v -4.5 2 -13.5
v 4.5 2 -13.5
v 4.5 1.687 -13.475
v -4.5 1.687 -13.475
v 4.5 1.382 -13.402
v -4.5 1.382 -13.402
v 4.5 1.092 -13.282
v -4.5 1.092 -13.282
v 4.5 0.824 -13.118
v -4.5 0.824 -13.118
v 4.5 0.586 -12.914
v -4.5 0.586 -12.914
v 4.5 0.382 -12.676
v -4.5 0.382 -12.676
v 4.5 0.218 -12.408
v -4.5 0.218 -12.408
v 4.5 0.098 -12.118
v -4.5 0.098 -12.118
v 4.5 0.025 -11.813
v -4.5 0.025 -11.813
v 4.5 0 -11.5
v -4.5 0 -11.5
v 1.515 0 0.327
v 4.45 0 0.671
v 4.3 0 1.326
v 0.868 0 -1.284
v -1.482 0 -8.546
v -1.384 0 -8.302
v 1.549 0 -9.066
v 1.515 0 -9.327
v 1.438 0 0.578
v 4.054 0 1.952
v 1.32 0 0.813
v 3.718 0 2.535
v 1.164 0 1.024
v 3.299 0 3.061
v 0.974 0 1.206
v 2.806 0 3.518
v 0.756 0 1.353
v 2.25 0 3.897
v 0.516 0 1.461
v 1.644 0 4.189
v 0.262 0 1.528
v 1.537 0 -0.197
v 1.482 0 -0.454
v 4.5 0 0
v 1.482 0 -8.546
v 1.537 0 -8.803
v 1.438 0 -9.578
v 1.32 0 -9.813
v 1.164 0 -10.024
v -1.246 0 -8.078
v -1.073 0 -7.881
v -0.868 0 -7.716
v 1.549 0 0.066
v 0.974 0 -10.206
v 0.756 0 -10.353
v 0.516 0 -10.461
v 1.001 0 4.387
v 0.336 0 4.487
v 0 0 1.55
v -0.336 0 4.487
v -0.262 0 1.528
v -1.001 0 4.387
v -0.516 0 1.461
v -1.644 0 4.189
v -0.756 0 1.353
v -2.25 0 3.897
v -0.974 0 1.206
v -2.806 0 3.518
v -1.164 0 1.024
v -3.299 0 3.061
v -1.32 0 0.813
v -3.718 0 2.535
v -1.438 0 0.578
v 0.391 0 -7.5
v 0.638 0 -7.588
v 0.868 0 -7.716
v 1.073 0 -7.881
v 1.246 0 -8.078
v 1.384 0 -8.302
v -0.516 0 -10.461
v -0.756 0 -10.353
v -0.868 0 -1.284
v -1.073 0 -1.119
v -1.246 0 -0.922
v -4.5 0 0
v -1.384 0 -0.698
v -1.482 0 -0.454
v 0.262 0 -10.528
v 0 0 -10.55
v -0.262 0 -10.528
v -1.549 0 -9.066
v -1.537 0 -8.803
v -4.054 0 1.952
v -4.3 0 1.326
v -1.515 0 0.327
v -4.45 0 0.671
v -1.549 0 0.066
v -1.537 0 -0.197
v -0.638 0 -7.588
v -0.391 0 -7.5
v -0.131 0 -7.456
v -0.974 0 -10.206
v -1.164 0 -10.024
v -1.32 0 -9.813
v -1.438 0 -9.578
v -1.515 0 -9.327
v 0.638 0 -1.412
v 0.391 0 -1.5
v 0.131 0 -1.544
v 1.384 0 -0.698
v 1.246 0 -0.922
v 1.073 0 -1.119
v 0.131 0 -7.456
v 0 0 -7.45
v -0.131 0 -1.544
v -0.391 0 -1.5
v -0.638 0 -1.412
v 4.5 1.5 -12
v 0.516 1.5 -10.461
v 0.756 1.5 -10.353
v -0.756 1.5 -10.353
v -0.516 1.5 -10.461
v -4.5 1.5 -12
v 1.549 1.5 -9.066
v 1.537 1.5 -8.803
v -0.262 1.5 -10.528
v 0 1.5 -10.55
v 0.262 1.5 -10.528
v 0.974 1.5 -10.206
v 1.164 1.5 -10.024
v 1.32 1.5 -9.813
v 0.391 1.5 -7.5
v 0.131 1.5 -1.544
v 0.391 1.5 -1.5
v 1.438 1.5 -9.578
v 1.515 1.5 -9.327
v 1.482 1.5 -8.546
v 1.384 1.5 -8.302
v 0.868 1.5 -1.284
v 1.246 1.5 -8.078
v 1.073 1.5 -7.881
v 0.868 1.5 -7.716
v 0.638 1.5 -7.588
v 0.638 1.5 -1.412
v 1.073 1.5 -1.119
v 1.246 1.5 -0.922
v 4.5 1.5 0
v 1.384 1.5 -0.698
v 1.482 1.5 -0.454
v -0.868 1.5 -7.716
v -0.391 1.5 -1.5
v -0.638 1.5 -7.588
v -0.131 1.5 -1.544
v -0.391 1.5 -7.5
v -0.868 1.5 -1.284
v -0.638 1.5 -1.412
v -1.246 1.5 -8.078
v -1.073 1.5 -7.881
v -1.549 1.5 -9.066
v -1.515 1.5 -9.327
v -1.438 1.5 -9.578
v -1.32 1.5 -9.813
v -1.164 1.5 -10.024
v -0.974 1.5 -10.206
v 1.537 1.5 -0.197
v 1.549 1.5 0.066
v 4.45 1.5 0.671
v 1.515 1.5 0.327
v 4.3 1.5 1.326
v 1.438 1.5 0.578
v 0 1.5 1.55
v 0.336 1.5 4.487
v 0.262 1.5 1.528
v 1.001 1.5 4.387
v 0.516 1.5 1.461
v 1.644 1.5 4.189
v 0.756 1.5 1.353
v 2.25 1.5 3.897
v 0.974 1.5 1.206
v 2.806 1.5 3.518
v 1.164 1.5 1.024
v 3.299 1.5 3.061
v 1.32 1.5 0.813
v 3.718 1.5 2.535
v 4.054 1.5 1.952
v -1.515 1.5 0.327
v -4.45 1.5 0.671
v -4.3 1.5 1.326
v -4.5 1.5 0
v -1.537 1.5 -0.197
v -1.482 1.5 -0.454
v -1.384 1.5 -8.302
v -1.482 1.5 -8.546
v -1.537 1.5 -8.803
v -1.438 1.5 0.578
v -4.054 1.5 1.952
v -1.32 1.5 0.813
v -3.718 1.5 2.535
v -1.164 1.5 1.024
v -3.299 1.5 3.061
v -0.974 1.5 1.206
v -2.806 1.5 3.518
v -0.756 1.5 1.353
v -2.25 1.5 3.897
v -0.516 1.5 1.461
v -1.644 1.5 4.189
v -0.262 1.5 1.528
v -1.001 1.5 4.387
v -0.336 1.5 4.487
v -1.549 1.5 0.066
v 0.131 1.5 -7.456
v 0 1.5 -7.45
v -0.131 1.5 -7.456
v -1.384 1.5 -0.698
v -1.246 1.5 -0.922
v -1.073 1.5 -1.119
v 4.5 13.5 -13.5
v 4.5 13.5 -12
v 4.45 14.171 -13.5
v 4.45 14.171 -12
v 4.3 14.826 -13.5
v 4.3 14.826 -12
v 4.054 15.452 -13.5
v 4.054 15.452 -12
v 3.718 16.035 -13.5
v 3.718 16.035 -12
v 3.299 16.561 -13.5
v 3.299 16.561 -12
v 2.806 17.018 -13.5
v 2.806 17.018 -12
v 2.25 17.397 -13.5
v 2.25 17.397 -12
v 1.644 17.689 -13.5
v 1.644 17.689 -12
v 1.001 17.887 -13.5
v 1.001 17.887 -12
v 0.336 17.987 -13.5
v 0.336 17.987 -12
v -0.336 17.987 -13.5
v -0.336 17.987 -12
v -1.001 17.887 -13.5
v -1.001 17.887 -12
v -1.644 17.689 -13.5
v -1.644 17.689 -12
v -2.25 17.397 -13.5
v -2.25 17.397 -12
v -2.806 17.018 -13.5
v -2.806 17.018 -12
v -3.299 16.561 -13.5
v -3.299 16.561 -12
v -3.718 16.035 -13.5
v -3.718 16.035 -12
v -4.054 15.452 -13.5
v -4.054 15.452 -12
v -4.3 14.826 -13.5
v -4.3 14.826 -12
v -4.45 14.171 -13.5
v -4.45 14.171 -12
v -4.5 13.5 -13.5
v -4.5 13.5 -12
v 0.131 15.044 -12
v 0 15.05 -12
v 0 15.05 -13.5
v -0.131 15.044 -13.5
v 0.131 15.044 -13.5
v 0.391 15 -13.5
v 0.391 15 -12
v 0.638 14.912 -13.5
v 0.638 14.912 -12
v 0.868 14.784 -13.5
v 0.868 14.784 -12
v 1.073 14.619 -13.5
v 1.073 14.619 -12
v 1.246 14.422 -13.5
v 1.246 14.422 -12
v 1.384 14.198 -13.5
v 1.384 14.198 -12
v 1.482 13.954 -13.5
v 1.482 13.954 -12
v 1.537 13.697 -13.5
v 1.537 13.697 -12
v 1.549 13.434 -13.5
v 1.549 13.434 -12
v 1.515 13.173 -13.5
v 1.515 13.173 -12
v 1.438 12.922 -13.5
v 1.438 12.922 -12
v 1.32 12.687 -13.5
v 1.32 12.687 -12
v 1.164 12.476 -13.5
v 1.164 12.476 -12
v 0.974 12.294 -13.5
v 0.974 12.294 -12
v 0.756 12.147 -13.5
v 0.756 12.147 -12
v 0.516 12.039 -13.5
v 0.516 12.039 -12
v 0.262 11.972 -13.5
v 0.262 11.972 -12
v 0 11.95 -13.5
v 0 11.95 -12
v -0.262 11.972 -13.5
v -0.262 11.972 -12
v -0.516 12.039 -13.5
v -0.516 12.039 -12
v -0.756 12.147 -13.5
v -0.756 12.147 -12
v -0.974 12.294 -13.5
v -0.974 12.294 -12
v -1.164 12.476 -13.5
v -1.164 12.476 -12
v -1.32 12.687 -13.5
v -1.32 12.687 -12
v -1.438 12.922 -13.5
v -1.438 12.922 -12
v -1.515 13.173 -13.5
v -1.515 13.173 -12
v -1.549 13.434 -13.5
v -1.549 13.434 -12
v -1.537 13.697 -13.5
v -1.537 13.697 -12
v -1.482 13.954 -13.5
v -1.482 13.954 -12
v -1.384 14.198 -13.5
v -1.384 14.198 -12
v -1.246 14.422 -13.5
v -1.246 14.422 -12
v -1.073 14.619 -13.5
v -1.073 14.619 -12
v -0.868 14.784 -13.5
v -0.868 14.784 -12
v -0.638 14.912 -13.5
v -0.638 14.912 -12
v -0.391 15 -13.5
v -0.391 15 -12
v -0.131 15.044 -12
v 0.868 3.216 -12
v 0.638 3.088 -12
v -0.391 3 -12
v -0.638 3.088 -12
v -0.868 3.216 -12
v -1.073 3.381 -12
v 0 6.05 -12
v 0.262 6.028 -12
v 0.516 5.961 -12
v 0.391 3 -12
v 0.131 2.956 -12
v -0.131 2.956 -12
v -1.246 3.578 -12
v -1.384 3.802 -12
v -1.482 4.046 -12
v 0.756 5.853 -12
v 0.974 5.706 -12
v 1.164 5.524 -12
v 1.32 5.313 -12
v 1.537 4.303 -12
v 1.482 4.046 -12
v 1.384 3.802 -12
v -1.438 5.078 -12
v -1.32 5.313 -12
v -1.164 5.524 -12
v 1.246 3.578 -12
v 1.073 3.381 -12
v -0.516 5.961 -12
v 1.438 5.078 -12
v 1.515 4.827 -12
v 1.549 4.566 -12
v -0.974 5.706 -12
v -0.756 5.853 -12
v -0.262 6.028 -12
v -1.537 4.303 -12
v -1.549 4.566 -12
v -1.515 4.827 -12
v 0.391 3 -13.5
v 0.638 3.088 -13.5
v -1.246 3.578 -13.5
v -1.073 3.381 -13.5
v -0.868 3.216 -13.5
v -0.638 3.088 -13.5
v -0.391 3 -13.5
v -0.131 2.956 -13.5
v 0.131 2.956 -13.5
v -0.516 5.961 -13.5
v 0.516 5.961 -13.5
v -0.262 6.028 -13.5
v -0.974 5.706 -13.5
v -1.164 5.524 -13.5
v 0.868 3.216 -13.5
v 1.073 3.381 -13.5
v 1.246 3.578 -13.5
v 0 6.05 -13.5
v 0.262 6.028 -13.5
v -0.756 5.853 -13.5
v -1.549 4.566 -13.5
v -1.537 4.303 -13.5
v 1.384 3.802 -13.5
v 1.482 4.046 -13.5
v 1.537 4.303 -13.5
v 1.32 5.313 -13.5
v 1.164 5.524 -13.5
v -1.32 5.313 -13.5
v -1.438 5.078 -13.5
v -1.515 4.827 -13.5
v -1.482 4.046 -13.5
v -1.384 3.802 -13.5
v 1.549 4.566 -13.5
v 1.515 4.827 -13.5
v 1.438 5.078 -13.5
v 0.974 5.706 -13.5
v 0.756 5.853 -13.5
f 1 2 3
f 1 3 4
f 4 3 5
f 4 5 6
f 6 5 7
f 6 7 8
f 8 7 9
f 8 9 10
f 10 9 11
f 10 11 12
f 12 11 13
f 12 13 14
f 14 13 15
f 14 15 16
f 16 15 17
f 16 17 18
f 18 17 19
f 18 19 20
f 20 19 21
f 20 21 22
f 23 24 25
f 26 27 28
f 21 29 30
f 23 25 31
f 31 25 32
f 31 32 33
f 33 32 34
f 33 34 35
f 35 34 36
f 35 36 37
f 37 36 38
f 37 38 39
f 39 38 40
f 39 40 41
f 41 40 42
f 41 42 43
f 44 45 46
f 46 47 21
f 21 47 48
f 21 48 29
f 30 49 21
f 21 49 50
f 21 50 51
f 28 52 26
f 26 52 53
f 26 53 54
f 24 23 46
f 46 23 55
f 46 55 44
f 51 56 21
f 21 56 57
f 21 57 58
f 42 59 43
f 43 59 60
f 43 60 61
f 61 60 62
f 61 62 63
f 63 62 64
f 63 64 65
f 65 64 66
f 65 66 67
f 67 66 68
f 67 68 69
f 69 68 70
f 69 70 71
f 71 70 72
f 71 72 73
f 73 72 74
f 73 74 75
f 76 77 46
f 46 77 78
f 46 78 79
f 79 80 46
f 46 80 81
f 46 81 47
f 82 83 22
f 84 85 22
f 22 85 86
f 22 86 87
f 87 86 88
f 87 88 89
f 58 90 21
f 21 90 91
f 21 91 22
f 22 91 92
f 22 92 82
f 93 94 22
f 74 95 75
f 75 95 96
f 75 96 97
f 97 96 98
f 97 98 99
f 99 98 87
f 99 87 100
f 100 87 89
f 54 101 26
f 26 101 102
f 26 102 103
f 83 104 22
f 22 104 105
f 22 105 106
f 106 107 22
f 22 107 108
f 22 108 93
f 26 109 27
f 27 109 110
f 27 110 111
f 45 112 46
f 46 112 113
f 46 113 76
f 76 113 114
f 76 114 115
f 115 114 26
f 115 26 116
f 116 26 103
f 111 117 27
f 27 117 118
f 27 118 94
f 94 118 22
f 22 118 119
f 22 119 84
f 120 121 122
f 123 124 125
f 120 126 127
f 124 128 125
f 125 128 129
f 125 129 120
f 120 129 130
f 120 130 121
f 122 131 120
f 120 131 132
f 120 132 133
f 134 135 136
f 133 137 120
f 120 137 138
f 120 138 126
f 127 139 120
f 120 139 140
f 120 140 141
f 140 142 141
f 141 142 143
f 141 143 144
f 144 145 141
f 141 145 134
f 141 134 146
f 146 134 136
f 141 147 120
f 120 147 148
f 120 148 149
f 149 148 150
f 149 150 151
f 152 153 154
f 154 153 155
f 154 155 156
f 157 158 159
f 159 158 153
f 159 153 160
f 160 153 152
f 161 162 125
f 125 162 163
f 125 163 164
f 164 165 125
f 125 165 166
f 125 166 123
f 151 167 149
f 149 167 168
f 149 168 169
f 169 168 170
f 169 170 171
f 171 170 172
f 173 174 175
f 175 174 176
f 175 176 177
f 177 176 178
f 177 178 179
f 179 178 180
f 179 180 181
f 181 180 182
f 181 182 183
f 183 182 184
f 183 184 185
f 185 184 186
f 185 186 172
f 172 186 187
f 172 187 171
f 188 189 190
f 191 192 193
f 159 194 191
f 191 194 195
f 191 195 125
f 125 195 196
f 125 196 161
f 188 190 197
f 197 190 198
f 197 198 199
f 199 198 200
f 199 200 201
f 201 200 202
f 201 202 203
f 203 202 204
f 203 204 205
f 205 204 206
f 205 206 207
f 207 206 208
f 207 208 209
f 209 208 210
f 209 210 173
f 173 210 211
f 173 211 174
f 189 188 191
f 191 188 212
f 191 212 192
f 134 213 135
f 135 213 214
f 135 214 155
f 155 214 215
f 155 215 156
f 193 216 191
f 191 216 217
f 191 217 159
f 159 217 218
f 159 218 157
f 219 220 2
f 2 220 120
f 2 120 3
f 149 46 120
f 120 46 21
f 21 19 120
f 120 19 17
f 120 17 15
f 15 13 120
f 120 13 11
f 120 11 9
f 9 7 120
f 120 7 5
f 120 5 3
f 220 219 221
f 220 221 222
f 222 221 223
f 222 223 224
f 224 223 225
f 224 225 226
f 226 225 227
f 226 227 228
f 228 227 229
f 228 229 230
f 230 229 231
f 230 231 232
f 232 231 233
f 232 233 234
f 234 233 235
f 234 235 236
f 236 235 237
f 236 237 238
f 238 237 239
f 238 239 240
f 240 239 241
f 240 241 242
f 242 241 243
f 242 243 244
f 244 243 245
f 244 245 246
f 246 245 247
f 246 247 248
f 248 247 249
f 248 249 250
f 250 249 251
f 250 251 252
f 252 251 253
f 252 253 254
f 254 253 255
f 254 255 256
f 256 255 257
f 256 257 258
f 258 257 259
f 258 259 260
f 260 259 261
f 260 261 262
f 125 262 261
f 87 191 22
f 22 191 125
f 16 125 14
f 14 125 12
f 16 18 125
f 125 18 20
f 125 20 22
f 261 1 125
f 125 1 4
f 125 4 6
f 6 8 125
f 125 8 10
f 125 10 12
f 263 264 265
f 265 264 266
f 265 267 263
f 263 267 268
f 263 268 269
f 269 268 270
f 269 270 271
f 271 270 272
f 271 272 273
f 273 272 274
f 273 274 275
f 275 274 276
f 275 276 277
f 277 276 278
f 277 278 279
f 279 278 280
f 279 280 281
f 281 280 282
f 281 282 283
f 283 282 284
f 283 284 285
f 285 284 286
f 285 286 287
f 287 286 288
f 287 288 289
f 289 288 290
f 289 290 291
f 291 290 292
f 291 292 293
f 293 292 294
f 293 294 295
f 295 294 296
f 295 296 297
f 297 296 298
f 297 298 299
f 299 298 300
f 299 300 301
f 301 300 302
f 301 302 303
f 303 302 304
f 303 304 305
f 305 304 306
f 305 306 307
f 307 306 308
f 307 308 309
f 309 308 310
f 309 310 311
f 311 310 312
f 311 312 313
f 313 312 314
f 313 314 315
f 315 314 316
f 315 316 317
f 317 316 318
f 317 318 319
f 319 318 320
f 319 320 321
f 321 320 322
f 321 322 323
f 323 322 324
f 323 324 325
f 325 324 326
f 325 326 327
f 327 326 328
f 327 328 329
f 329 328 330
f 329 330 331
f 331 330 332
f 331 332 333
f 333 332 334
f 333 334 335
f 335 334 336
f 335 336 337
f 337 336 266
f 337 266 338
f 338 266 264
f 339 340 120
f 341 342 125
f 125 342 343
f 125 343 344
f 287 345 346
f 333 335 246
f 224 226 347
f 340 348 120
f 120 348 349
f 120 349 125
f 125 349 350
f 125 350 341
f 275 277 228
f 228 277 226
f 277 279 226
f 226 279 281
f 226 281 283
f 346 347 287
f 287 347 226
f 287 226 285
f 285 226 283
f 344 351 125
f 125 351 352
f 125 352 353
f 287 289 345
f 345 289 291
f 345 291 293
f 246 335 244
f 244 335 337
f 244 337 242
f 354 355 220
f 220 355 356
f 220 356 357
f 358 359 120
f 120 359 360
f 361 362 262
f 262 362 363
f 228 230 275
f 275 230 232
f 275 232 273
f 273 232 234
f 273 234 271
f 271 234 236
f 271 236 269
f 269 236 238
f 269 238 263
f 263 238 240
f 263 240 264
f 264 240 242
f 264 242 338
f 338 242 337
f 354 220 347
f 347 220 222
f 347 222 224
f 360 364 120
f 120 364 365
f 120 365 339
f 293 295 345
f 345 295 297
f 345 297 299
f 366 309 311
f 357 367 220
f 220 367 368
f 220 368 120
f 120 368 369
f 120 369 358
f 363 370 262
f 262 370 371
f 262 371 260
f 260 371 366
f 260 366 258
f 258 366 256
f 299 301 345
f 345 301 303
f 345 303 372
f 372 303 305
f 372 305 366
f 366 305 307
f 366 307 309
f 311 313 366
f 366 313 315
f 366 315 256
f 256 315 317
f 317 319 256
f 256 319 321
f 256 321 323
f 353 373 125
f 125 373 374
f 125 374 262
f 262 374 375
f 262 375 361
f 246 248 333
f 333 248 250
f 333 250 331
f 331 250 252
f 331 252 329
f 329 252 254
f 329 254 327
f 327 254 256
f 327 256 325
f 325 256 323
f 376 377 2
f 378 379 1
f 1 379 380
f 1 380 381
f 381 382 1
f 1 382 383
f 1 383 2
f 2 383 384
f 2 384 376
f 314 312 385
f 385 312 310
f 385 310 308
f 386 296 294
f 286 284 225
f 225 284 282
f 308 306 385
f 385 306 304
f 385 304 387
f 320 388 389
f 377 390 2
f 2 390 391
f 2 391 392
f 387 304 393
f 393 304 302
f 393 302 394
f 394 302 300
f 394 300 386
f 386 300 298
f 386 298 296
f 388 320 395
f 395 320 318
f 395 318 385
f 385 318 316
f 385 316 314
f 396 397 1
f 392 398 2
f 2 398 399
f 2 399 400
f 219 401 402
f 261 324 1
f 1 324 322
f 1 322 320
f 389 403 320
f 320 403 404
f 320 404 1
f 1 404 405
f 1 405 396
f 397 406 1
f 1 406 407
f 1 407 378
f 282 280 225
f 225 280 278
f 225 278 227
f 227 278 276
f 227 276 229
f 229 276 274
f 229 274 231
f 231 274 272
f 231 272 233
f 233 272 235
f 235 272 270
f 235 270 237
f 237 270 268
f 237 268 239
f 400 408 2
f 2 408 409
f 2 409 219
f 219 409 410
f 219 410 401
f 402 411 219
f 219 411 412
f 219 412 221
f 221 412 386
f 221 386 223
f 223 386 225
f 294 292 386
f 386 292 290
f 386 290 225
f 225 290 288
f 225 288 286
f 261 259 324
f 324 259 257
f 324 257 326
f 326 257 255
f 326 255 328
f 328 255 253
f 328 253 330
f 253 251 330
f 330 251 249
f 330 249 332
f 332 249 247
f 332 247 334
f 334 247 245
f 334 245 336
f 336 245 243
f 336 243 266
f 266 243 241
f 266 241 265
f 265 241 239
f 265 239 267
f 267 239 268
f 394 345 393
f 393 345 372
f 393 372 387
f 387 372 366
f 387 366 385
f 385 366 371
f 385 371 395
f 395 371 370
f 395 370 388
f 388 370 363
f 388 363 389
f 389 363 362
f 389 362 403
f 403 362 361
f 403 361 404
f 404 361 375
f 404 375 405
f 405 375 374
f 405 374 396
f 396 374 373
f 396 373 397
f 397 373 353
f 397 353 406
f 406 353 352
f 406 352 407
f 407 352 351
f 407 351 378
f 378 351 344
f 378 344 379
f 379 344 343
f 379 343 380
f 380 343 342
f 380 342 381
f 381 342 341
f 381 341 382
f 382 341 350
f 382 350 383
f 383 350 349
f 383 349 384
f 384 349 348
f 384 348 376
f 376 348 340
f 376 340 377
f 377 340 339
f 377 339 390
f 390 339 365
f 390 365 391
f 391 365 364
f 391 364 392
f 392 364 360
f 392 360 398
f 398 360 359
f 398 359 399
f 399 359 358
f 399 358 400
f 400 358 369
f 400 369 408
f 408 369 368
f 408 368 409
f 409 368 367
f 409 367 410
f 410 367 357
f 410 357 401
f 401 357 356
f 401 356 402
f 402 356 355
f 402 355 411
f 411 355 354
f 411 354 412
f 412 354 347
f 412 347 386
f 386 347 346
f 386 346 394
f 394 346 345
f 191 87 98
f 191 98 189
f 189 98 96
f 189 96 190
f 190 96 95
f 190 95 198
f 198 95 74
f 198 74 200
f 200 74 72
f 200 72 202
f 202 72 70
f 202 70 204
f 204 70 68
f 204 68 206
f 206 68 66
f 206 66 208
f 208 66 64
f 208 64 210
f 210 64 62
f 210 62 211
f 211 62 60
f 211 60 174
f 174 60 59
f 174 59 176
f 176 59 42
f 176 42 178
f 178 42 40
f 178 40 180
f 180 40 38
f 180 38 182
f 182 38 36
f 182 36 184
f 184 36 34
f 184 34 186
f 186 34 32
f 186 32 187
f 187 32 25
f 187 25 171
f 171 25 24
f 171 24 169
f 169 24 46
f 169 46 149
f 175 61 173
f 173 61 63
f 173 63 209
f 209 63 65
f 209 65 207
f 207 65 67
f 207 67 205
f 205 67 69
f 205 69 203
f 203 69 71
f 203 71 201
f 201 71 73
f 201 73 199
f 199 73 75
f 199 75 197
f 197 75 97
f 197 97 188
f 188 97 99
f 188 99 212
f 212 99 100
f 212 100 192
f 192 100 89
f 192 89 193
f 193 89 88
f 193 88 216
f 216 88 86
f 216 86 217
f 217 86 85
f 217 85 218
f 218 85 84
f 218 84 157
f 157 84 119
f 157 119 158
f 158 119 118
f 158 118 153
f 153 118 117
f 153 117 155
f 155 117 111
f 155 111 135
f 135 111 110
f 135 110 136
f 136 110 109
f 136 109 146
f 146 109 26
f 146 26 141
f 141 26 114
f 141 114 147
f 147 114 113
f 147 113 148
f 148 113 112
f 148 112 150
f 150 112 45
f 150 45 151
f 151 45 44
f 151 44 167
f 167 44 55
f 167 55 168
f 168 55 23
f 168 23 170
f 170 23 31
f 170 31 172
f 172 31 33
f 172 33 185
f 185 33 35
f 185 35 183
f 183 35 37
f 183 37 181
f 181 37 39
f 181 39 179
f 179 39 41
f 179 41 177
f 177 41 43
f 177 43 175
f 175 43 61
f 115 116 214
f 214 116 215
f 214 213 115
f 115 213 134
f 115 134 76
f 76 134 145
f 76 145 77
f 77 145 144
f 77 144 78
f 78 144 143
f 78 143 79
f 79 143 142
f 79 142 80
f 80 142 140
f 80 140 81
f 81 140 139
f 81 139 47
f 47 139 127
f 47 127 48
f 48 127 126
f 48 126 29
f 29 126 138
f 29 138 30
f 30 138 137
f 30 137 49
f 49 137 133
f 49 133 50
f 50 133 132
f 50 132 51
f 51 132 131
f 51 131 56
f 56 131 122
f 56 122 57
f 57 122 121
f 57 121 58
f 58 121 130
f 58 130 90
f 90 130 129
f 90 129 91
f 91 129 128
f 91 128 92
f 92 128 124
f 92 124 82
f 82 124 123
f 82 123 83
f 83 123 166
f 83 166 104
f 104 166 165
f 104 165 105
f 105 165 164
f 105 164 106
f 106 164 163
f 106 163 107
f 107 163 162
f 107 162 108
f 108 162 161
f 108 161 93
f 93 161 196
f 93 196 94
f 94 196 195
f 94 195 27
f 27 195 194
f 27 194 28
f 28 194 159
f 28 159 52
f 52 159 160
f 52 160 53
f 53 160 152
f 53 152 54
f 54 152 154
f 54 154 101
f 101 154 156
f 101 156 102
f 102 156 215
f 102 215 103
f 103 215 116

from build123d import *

# Parameters (mm, degrees)
CROQUIS1_R              = 4.5
CROQUIS1_R_2            = 1.55
SALIENTE_EXTRUIR1_DEPTH = 1.5
CROQUIS6_R              = 1.55
CORTAR_EXTRUIR1_DEPTH   = 1.5
REDONDEO1_R             = 2


with BuildPart() as part:
    # Croquis1 → Saliente-Extruir1 (new body)
    # profile 1 of 2: a face of its own
    with BuildSketch(Plane(origin=(0, 0, 0), x_dir=(1, 0, 0), z_dir=(0, 1, 0))):
        with BuildLine():
            Line((-4.5, 13.5), (-4.5, 0))
            ThreePointArc((-4.5, 0), (0, 4.5), (4.5, 0))
            Line((4.5, 0), (4.5, 13.5))
            Line((4.5, 13.5), (-4.5, 13.5))
        make_face()
    # profile 2 of 2: a face of its own
    with BuildSketch(Plane(origin=(0, 0, 0), x_dir=(1, 0, 0), z_dir=(0, 1, 0))):
        Circle(CROQUIS1_R)
        with Locations(Location((0, 0, 0), (0, 0, 270))):
            Circle(CROQUIS1_R_2, mode=Mode.SUBTRACT)
    saliente_extruir1 = extrude(amount=SALIENTE_EXTRUIR1_DEPTH)

    # Croquis6 → Cortar-Extruir1 (cut)
    with BuildSketch(Plane(origin=(0, 1.5, 0), x_dir=(1, 0, 0), z_dir=(0, 1, 0))):
        with Locations(Location((0, 9, 0), (0, 0, 270))):
            Circle(CROQUIS6_R)
    cortar_extruir1 = extrude(amount=-CORTAR_EXTRUIR1_DEPTH, mode=Mode.SUBTRACT)

    # Simetría1: Saliente-Extruir1, Cortar-Extruir1 across plane
    add(saliente_extruir1.mirror(Plane(origin=(0, 6.75, -6.75), x_dir=(0, 0.7071067811865479, 0.7071067811865472), z_dir=(0, 0.7071067811865474, -0.7071067811865478))))
    add(cortar_extruir1.mirror(Plane(origin=(0, 6.75, -6.75), x_dir=(0, 0.7071067811865479, 0.7071067811865472), z_dir=(0, 0.7071067811865474, -0.7071067811865478))), mode=Mode.SUBTRACT)

    # Redondeo1
    redondeo1_edges = [part.edges().sort_by_distance(p)[0] for p in [
        (0, 0, -13.5),
    ]]
    fillet(redondeo1_edges, radius=REDONDEO1_R)


solid = part.part
